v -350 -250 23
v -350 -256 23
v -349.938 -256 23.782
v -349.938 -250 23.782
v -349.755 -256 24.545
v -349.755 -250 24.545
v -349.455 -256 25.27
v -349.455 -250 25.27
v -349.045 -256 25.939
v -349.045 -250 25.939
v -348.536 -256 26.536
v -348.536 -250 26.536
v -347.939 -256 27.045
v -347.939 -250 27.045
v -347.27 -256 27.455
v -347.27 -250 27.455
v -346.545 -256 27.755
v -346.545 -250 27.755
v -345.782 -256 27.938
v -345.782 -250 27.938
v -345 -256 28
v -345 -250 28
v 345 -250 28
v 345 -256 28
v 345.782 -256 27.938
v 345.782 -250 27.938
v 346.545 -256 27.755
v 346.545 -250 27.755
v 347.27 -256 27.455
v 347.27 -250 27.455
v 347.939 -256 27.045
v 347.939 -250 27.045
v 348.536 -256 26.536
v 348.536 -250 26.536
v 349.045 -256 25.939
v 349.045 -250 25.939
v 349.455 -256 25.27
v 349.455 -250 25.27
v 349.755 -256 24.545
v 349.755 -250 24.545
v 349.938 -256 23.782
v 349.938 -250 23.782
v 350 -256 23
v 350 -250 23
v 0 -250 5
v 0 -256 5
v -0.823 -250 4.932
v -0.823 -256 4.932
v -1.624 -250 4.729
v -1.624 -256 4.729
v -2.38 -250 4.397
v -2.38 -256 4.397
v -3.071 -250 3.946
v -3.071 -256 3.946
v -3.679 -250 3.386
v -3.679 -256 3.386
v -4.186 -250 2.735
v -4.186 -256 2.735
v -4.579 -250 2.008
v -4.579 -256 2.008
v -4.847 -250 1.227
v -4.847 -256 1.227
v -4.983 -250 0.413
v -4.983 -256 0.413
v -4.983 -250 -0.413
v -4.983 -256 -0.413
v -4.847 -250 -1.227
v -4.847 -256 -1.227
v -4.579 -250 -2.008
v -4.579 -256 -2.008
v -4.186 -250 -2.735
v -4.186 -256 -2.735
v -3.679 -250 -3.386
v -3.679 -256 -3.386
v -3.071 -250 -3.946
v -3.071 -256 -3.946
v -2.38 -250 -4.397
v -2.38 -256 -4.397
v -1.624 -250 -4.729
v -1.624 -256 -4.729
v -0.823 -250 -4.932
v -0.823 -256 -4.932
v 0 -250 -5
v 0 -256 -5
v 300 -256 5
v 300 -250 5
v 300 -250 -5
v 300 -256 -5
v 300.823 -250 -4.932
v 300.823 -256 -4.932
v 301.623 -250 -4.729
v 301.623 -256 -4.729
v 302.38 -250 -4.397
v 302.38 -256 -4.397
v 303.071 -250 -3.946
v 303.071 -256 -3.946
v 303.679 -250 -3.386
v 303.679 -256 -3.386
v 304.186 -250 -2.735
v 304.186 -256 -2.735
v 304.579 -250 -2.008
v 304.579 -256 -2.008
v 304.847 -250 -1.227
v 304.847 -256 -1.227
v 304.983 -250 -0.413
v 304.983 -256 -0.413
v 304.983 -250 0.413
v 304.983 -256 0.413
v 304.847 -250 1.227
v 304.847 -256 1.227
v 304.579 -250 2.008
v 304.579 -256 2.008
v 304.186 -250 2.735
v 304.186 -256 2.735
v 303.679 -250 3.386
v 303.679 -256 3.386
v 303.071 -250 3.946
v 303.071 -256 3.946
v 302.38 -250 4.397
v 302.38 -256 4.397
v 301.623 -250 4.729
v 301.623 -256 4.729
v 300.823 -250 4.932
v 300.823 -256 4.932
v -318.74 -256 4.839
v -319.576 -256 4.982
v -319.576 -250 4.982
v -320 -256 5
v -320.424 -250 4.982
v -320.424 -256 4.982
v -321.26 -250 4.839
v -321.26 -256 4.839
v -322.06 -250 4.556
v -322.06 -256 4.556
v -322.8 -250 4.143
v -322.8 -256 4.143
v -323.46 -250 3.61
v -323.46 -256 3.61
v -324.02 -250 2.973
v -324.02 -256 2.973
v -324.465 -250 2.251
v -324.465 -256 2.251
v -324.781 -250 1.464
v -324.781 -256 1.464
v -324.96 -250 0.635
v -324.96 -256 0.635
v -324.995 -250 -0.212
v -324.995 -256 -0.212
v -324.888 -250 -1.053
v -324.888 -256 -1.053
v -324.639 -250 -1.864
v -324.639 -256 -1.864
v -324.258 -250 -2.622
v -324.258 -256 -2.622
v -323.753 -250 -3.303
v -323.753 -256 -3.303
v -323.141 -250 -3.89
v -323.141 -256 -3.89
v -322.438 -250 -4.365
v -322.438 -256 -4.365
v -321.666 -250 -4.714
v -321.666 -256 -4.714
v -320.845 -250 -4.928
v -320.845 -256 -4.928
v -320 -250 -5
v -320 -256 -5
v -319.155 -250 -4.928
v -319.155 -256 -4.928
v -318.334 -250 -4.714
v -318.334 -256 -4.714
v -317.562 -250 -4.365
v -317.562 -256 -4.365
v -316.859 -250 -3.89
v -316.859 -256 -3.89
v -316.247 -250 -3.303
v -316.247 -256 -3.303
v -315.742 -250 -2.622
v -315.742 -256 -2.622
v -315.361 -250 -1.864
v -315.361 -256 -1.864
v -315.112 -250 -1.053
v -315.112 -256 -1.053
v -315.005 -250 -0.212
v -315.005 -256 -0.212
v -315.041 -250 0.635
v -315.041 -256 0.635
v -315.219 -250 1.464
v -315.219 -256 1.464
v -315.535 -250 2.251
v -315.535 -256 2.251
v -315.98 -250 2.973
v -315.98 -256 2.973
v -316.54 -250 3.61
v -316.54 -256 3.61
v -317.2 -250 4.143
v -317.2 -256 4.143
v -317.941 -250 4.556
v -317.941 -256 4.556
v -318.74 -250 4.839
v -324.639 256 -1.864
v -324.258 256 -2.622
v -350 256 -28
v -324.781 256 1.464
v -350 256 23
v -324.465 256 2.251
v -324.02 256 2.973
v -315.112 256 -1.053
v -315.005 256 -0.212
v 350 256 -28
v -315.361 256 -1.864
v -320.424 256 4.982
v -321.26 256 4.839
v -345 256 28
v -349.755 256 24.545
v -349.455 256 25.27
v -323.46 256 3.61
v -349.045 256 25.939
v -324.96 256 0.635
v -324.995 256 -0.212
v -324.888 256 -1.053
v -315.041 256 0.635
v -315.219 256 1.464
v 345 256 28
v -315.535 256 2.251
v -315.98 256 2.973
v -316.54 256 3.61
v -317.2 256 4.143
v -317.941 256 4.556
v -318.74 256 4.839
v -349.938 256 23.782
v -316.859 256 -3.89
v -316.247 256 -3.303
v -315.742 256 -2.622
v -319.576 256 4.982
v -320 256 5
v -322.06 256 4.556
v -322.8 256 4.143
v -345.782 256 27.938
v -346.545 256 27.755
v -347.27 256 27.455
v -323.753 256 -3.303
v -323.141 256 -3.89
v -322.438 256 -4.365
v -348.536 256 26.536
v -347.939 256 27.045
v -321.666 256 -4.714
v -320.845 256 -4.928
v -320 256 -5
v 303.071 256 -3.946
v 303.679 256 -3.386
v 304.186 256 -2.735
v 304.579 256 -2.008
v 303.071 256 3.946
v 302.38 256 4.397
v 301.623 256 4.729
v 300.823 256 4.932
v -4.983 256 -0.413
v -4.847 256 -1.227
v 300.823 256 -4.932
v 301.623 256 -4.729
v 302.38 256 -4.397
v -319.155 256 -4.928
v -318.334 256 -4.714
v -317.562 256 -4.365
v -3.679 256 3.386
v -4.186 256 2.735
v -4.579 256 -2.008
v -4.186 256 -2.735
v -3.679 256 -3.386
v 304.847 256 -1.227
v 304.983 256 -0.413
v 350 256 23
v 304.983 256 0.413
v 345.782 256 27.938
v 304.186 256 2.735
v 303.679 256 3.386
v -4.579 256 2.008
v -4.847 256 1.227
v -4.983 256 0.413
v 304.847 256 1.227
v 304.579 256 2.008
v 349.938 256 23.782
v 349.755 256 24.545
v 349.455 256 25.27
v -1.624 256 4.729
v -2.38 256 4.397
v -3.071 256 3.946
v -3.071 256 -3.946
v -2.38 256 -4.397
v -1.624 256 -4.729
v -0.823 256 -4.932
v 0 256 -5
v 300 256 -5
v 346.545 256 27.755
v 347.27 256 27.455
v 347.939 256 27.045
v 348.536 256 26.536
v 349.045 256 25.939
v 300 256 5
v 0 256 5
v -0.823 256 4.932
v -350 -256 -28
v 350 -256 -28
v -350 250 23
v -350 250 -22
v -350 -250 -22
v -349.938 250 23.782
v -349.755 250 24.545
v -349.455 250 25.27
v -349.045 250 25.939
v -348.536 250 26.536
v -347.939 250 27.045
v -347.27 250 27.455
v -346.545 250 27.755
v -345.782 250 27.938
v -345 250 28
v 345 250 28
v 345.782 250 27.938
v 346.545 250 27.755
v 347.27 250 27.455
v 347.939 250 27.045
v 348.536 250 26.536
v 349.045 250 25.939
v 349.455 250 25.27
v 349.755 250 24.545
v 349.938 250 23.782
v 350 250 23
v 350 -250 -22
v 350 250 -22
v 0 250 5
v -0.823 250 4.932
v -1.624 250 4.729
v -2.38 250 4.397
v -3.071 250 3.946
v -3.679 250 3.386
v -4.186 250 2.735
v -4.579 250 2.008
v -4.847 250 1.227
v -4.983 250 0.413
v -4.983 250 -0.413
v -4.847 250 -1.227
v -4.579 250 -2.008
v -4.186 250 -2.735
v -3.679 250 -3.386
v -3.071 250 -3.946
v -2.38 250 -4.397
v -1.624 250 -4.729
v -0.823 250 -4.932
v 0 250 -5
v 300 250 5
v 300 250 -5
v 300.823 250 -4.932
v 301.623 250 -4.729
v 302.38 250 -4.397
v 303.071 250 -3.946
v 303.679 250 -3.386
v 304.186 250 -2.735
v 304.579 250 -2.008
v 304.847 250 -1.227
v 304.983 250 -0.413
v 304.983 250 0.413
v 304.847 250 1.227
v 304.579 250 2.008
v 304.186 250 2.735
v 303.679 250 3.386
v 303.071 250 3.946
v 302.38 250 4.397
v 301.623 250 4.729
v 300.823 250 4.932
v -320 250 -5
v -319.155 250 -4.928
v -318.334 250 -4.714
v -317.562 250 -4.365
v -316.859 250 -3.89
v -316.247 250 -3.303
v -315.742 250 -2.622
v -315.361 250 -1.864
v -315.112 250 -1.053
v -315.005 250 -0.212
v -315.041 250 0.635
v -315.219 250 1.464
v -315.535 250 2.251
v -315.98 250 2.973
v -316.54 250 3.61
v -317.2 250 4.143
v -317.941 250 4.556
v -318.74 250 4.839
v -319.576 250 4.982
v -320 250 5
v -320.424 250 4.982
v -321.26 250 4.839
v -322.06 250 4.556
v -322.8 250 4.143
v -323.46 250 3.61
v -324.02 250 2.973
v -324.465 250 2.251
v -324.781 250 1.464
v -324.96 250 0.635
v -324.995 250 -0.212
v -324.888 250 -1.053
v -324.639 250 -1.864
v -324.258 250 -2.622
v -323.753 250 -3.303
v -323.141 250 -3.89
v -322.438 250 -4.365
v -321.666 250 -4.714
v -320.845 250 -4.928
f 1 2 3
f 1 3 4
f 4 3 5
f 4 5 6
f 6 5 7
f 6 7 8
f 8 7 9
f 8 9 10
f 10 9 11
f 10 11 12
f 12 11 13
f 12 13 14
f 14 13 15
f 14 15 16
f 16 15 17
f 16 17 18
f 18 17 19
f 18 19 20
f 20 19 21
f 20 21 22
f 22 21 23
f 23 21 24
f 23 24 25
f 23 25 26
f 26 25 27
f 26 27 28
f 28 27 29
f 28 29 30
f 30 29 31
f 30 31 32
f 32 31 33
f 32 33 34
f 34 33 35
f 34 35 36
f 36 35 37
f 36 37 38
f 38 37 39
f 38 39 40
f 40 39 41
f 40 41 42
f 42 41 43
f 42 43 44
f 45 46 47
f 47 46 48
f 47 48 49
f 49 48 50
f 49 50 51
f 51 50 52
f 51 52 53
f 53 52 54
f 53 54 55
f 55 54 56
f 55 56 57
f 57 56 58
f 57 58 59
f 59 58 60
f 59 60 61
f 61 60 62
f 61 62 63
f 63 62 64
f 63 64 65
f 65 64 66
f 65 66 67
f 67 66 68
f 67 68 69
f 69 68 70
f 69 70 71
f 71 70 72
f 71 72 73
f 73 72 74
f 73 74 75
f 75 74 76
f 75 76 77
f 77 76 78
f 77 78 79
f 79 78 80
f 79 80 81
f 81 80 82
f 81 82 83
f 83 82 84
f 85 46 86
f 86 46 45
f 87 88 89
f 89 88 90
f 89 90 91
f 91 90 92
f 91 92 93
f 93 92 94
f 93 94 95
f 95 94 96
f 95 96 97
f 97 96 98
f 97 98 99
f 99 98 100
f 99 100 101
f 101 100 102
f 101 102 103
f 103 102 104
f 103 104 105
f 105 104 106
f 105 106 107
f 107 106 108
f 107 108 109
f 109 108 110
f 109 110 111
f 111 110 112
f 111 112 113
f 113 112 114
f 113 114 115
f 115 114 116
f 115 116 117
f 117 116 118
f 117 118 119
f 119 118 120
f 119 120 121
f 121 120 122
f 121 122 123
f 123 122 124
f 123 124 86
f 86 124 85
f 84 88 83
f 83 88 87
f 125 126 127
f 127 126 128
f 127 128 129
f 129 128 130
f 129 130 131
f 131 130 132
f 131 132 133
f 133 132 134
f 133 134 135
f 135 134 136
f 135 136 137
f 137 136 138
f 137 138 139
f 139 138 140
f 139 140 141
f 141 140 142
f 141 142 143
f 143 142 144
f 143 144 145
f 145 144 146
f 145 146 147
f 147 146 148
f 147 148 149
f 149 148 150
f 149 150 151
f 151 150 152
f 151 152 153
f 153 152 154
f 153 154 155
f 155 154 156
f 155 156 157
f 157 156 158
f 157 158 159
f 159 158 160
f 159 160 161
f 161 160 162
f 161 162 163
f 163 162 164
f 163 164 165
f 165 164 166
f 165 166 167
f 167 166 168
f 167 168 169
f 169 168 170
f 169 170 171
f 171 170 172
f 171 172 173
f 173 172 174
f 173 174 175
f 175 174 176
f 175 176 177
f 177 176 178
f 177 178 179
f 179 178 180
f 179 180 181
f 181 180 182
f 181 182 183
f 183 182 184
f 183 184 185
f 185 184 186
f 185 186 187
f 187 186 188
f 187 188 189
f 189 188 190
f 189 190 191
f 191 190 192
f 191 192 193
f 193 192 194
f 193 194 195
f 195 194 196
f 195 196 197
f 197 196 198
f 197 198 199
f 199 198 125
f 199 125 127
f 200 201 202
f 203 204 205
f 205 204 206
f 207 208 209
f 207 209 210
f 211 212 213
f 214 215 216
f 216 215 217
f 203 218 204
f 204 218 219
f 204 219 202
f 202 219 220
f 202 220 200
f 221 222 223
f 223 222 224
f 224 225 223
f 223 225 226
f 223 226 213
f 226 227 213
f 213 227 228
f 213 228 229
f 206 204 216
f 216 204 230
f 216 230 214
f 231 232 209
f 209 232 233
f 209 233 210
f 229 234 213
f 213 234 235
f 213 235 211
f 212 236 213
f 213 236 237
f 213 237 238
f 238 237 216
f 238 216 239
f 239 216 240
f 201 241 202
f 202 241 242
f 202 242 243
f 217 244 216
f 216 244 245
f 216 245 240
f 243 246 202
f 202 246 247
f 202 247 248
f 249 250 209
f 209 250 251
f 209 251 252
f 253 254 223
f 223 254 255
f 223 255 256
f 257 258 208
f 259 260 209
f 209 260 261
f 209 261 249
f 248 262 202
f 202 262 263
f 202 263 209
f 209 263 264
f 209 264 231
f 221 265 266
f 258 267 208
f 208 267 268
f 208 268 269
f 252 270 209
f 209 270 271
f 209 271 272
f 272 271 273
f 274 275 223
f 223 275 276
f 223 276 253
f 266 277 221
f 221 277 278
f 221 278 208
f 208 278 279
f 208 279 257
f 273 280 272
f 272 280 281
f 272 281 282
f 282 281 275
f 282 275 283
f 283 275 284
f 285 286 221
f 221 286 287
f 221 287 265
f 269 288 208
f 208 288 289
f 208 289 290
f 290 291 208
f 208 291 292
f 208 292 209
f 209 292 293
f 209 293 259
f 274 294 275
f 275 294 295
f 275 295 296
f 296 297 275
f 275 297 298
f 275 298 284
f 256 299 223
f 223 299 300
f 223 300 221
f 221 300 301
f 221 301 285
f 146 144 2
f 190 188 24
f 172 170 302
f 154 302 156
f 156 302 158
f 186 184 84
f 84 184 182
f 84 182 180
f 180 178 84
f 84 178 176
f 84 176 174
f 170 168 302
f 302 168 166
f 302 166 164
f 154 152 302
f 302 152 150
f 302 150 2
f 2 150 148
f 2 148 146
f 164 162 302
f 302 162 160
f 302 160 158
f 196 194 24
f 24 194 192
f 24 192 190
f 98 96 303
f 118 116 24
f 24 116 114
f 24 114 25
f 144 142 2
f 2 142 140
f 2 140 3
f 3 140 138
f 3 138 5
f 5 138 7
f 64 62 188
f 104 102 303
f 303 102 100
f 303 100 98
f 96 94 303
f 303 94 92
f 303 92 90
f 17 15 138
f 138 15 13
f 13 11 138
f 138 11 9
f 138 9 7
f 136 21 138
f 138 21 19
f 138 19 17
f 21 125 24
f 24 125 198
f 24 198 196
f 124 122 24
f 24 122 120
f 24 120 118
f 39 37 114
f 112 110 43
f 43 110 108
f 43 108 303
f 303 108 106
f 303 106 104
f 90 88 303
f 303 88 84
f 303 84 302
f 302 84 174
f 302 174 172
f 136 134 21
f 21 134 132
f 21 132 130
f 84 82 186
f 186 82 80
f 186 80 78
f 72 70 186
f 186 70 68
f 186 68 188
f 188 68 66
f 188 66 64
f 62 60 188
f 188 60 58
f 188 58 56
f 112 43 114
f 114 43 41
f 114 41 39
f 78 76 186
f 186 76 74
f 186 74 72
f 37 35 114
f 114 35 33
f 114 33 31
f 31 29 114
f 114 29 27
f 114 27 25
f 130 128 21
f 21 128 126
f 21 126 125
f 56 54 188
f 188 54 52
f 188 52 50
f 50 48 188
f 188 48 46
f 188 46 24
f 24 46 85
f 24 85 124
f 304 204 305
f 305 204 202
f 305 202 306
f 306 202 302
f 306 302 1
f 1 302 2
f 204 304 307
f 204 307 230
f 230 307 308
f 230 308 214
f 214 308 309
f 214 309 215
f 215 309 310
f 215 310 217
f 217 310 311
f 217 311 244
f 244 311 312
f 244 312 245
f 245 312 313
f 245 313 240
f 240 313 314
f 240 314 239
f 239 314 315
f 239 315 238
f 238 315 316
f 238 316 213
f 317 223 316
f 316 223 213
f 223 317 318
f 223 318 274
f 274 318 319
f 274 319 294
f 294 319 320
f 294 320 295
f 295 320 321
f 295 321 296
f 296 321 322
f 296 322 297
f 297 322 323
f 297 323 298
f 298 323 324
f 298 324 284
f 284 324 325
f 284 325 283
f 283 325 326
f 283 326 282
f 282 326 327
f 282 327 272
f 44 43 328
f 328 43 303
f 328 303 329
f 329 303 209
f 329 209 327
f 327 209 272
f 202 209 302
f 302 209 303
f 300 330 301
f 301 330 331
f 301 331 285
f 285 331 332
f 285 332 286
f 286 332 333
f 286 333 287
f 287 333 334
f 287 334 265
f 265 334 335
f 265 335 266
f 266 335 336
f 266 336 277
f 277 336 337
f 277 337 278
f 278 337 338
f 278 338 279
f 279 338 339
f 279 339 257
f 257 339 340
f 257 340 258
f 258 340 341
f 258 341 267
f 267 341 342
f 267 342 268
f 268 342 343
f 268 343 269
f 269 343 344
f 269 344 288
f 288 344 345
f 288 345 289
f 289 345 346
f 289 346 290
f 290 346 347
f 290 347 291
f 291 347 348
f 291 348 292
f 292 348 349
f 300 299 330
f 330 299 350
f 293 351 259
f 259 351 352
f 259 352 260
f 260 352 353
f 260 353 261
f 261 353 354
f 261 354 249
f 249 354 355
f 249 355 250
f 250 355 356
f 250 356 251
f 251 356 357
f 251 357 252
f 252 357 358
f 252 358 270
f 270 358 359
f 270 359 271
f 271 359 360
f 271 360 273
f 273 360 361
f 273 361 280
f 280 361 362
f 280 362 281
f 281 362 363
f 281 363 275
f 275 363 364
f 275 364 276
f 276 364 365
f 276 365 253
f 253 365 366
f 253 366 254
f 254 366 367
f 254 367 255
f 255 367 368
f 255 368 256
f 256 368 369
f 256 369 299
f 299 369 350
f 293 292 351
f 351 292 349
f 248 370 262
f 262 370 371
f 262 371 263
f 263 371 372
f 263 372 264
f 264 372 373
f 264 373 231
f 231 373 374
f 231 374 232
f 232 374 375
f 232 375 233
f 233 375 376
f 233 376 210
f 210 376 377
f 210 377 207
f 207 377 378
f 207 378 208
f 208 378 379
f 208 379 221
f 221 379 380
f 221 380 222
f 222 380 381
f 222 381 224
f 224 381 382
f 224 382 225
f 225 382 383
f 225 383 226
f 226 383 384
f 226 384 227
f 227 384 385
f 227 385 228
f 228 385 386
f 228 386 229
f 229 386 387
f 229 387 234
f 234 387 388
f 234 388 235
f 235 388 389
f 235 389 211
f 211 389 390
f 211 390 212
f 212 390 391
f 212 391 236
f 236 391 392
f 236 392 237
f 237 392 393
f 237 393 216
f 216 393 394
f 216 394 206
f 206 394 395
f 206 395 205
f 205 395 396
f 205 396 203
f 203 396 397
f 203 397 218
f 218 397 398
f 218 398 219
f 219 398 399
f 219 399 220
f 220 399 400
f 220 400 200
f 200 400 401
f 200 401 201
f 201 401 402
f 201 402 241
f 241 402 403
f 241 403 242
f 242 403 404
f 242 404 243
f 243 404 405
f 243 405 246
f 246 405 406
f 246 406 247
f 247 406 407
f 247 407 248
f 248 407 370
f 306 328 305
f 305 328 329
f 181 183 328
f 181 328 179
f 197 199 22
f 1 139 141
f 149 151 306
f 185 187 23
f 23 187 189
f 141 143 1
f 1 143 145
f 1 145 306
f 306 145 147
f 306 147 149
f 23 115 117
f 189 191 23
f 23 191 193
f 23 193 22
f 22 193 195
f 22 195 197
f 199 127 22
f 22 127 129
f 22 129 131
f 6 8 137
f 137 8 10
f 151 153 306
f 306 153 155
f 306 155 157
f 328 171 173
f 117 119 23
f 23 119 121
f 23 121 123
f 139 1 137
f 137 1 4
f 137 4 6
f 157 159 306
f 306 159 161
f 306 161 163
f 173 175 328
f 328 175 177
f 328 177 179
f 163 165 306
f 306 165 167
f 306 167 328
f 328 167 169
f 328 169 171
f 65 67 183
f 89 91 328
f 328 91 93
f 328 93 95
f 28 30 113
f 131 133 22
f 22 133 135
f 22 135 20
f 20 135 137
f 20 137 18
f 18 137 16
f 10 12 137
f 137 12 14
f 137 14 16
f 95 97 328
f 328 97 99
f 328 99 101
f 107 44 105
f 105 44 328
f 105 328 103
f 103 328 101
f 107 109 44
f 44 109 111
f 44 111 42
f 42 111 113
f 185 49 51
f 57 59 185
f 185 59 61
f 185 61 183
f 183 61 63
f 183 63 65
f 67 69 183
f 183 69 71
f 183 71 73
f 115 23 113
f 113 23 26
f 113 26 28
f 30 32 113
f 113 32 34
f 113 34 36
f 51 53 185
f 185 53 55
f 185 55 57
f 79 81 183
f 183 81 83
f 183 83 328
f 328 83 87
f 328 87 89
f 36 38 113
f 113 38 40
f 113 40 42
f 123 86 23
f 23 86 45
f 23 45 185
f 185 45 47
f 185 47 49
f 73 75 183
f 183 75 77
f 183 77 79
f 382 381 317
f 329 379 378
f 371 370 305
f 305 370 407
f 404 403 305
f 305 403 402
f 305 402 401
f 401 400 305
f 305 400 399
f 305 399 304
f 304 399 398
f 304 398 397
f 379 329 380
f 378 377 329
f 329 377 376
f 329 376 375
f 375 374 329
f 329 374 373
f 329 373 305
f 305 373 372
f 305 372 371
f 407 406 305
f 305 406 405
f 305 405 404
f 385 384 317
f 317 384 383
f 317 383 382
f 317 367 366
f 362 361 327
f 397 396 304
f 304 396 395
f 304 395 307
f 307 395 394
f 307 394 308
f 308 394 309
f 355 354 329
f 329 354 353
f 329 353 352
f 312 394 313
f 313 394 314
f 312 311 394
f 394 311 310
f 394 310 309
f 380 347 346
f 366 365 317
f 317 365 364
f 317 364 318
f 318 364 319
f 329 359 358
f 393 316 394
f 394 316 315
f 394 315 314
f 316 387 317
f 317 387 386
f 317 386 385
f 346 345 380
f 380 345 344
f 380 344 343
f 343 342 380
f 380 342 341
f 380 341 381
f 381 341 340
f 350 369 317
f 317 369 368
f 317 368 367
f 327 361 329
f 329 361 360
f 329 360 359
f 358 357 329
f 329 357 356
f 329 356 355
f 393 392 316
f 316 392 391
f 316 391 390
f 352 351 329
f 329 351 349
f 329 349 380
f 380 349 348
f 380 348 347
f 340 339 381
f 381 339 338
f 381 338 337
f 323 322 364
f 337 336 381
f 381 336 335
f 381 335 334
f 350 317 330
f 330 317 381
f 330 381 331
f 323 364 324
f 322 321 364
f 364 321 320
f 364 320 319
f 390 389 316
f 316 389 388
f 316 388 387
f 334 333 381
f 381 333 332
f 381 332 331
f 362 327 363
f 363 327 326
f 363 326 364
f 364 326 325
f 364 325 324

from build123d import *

# Parameters (mm, degrees)
SKETCH4_R               = 5
BOSS_EXTRUDE2_DEPTH     = 256
CUT_EXTRUDE2_DEPTH      = 746.868621139
CUT_EXTRUDE2_DEPTH_BACK = 746.868621139
SKETCH5_W               = 50
SKETCH5_H               = 500


with BuildPart() as part:
    # Sketch4 → Boss-Extrude2 (new, symmetric)
    with BuildSketch(Plane(origin=(0, 0, 0), x_dir=(1, 0, 0), z_dir=(0, 1, 0))):
        with BuildLine():
            Line((-350, 28), (350, 28))
            Line((350, 28), (350, -23))
            ThreePointArc((350, -23), (348.535533906, -26.535533906), (345, -28))
            Line((345, -28), (-345, -28))
            ThreePointArc((-345, -28), (-348.535533906, -26.535533906), (-350, -23))
            Line((-350, -23), (-350, 28))
        make_face()
        with Locations(Location((-320, 0, 0), (0, 0, 270))):
            Circle(SKETCH4_R, mode=Mode.SUBTRACT)
        with BuildLine():
            Line((0, 5), (300, 5))
            ThreePointArc((300, 5), (305, 0), (300, -5))
            Line((300, -5), (0, -5))
            ThreePointArc((0, -5), (-5, 0), (0, 5))
        make_face(mode=Mode.SUBTRACT)
    extrude(amount=BOSS_EXTRUDE2_DEPTH, both=True)

    # Sketch5 → Cut-Extrude2 (cut, two sides: drawn at the far end of the back side and taken through both)
    with BuildSketch(Plane(origin=(350, 0, 0), x_dir=(0, 0, -1), z_dir=(1, 0, 0)).offset(-CUT_EXTRUDE2_DEPTH_BACK)):
        with Locations((-3, 0)):
            Rectangle(SKETCH5_W, SKETCH5_H)
    extrude(amount=CUT_EXTRUDE2_DEPTH + CUT_EXTRUDE2_DEPTH_BACK, mode=Mode.SUBTRACT)


solid = part.part
